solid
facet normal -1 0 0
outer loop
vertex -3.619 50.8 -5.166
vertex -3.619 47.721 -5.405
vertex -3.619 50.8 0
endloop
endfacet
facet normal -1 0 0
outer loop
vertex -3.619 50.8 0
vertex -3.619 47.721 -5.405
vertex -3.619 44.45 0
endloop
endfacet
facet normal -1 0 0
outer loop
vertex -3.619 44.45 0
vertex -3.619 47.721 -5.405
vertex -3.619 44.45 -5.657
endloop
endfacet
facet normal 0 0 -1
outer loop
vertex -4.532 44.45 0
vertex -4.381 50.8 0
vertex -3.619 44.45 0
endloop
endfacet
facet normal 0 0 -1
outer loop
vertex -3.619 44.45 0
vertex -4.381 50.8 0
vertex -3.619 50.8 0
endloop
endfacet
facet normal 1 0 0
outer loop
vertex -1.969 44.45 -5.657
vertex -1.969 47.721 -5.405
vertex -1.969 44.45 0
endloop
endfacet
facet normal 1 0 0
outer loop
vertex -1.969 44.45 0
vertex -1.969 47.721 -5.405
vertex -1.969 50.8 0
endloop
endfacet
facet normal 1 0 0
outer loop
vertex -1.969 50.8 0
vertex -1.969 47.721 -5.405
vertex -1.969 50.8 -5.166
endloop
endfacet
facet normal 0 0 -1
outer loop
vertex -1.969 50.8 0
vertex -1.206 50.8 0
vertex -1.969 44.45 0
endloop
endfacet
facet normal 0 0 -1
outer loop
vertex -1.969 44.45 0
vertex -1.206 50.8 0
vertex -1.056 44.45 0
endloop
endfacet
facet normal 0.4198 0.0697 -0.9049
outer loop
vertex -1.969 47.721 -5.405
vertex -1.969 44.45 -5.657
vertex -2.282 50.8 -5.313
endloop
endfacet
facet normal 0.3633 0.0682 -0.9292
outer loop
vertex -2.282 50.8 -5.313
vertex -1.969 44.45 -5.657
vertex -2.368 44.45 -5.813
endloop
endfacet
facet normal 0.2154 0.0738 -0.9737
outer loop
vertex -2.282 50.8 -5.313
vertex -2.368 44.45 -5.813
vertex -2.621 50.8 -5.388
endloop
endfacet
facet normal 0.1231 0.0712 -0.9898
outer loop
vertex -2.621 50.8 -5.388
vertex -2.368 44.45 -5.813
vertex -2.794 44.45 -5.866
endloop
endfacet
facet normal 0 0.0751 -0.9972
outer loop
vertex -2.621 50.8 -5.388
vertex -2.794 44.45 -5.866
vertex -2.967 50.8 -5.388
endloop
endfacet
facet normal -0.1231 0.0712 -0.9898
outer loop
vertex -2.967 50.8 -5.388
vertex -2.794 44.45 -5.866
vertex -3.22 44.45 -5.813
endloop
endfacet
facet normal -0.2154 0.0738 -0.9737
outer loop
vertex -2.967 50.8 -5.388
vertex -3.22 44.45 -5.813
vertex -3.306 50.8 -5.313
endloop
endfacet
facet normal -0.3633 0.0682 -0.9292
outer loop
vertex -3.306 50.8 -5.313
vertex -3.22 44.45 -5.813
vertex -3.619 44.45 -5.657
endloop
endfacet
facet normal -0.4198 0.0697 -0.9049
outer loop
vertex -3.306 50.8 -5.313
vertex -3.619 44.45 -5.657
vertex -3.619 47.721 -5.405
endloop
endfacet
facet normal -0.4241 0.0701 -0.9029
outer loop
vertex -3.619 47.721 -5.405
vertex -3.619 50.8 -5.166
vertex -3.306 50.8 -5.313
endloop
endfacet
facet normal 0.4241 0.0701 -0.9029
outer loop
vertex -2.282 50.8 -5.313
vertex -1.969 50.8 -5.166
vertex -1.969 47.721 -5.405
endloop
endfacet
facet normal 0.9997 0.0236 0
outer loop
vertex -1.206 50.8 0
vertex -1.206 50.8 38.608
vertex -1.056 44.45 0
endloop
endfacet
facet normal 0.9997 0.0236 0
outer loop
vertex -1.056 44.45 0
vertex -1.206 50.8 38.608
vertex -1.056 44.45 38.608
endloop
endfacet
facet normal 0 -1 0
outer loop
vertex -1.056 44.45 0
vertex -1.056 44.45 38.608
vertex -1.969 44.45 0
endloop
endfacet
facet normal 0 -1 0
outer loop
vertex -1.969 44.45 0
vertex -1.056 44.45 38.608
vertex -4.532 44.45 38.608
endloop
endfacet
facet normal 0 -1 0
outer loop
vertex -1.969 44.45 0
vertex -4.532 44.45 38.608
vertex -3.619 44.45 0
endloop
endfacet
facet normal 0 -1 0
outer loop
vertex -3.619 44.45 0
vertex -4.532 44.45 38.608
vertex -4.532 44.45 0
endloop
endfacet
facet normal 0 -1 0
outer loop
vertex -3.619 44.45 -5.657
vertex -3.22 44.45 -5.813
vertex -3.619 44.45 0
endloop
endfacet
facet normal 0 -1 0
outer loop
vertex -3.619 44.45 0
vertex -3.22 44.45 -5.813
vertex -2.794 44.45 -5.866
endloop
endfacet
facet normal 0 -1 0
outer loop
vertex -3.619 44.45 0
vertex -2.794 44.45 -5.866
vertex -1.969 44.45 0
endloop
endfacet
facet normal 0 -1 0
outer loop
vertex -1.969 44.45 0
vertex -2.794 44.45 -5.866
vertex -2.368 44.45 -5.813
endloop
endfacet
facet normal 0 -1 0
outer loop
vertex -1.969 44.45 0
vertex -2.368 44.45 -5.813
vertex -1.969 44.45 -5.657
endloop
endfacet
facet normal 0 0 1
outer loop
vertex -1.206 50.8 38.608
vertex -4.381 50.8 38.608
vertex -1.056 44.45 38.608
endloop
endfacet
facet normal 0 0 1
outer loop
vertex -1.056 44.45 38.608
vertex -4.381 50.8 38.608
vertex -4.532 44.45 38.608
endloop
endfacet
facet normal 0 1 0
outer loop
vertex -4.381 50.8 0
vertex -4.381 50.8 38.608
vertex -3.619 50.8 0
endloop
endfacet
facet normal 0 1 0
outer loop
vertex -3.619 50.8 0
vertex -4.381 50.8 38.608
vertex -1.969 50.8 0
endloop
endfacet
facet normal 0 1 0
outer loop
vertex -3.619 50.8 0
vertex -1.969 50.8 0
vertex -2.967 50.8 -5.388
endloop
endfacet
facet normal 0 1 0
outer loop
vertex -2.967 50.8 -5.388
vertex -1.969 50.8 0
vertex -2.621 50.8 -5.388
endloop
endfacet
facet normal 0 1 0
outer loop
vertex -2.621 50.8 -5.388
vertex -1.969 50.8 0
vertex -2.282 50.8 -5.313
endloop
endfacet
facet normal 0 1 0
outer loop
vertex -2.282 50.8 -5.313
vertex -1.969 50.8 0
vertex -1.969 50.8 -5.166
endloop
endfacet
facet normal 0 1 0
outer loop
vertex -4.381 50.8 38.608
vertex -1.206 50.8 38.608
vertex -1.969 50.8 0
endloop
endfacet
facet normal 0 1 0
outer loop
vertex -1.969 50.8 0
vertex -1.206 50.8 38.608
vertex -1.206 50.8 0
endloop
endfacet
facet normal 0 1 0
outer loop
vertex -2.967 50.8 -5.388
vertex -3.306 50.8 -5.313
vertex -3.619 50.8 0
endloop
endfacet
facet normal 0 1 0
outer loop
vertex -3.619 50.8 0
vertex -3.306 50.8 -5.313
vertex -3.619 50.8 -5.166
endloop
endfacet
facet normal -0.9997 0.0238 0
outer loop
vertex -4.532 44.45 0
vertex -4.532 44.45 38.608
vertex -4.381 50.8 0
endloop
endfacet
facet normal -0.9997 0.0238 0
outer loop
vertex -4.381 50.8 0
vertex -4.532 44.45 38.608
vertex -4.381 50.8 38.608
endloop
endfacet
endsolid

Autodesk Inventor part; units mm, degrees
ref_plane "YZ Plane" through (0, 0, 0) normal (1, 0, 0) x (0, 1, 0)
ref_plane "XY Plane" through (0, 0, 0) normal (0, 0, 1) x (1, 0, 0)
sketch "Sketch6" plane through (0, 0, 0) normal (0, 1, 0) x (-1, 0, 0)
  line L0 (0, 0) -> (5.588, 0)
  line L1 (5.588, 0) -> (5.588, -6.35)
  line L2 (5.588, -6.35) -> (0, -6.35)
  line L3 (0, -6.35) -> (0, 0)
  arc A0 (0, -6.35) -> (5.588, -6.35) centre (2.794, -6.35) ccw
  dimension "d25" = 5.588
  dimension "d26" = 6.35
ref_plane "Work Plane1" through (0, 50.8, 0) normal (0, 1, 0) x (-1, 0, 0)
sketch "Sketch8" plane through (0, 50.8, 0) normal (0, 1, 0) x (-1, 0, 0)
  line L0 (4.3815, 0) -> (1.2065, 0)
  line L1 (1.2065, 0) -> (1.2065, -3.81)
  line L2 (1.2065, -3.81) -> (4.3815, -3.81)
  line L3 (4.3815, -3.81) -> (4.3815, 0)
  arc A0 (1.2065, -3.81) -> (4.3815, -3.81) centre (2.794, -3.81) ccw
  point P0 (0, 0)
  dimension "d27" = 3.175
  dimension "d28" = 3.81
  dimension "d49" = 1.2065
loft "Loft1" add profiles "Sketch6", "Sketch8"
sketch "Sketch9" plane through (-5.588, 0, 0) normal (0, 0, 1) x (1, 0, 0)
  line L0 (0, 0) -> (5.588, 0) projected
  line L1 (5.588, 0) -> (4.3815, 50.8) projected
  line L2 (1.2065, 50.8) -> (4.3815, 50.8) projected
  line L3 (0, 0) -> (1.2065, 50.8) projected
  line L4 (4.3815, 50.8) -> (5.588, 0) projected
  line L5 (4.5323, 44.45) -> (1.0557, 44.45)
  line L6 (0, 0) -> (1.2065, 50.8) projected
  dimension "d34" = 6.35
extrude "Extrusion5" add sketch "Sketch9" along normal blind 38.608 contours L3 L2 L1 L5
sketch "Sketch12" plane through (-2.794, 0, -6.35) normal (0, -1, 0) x (1, 0, 0)
  circle A0 centre (0, 1.9685) radius 1.27
  arc A1 (-2.794, 0) -> (2.794, 0) centre (0, 0) ccw projected
  line L0 (0, -2.794) -> (0, 1.9685)
  point P0 (2.794, 6.35)
  dimension "d44" = 2.54
  dimension "d46" = 4.7625
extrude "Extrusion8" cut sketch "Sketch12" against normal blind 10.16
sketch "Sketch13" plane through (-5.588, 0, 0) normal (0, 0, 1) x (1, 0, 0)
  line L0 (4.3815, 50.8) -> (1.2065, 50.8) projected
  line L1 (1.2065, 50.8) -> (4.3815, 50.8) projected
  line L2 (1.0557, 44.45) -> (4.5323, 44.45) projected
  line L3 (3.6195, 50.8) -> (1.9685, 50.8)
  line L4 (1.9685, 50.8) -> (1.9685, 44.45)
  line L5 (1.9685, 44.45) -> (3.6195, 44.45)
  line L6 (3.6195, 44.45) -> (3.6195, 50.8)
  line L7 (3.6195, 50.8) -> (4.3815, 50.8) construction
  line L8 (0, 0) -> (1.2065, 50.8) construction
  line L9 (1.9685, 50.8) -> (1.2065, 50.8) construction
  line L10 (10.7022, 53.5114) -> (-2.6174, 53.5114)
  line L11 (-2.6174, 53.5114) -> (-2.6174, -3.5015)
  line L12 (-2.6174, -3.5015) -> (10.7022, -3.5015)
  line L13 (10.7022, -3.5015) -> (10.7022, 53.5114)
  line L14 (1.9685, 50.8) -> (1.2065, 50.8)
  line L15 (1.2065, 50.8) -> (1.0557, 44.45)
  line L16 (1.9685, 44.45) -> (1.0557, 44.45)
  line L17 (4.3815, 50.8) -> (5.588, 0) projected
  line L18 (3.6195, 44.45) -> (4.5323, 44.45)
  line L19 (4.5323, 44.45) -> (4.3815, 50.8)
  line L20 (4.3815, 50.8) -> (3.6195, 50.8)
  dimension "d50" = 1.651
extrude "Extrusion11" cut sketch "Sketch13" against normal through all contours L17 L2 L6 L0 | L4 L2 L15 L0
sketch "Sketch15" plane through (-5.588, 0, 0) normal (0, 0, 1) x (1, 0, 0)
  line L0 (8.5653, 44.45) -> (-2.8373, 44.45)
  line L1 (-2.8373, 44.45) -> (-2.8373, 0)
  line L2 (-2.8373, 0) -> (8.5653, 0)
  line L3 (8.5653, 0) -> (8.5653, 44.45)
  point P0 (5.588, 0)
extrude "Extrusion12" cut sketch "Sketch15" against normal through all
properties part number "RudderStabilizingFins_Print2"
